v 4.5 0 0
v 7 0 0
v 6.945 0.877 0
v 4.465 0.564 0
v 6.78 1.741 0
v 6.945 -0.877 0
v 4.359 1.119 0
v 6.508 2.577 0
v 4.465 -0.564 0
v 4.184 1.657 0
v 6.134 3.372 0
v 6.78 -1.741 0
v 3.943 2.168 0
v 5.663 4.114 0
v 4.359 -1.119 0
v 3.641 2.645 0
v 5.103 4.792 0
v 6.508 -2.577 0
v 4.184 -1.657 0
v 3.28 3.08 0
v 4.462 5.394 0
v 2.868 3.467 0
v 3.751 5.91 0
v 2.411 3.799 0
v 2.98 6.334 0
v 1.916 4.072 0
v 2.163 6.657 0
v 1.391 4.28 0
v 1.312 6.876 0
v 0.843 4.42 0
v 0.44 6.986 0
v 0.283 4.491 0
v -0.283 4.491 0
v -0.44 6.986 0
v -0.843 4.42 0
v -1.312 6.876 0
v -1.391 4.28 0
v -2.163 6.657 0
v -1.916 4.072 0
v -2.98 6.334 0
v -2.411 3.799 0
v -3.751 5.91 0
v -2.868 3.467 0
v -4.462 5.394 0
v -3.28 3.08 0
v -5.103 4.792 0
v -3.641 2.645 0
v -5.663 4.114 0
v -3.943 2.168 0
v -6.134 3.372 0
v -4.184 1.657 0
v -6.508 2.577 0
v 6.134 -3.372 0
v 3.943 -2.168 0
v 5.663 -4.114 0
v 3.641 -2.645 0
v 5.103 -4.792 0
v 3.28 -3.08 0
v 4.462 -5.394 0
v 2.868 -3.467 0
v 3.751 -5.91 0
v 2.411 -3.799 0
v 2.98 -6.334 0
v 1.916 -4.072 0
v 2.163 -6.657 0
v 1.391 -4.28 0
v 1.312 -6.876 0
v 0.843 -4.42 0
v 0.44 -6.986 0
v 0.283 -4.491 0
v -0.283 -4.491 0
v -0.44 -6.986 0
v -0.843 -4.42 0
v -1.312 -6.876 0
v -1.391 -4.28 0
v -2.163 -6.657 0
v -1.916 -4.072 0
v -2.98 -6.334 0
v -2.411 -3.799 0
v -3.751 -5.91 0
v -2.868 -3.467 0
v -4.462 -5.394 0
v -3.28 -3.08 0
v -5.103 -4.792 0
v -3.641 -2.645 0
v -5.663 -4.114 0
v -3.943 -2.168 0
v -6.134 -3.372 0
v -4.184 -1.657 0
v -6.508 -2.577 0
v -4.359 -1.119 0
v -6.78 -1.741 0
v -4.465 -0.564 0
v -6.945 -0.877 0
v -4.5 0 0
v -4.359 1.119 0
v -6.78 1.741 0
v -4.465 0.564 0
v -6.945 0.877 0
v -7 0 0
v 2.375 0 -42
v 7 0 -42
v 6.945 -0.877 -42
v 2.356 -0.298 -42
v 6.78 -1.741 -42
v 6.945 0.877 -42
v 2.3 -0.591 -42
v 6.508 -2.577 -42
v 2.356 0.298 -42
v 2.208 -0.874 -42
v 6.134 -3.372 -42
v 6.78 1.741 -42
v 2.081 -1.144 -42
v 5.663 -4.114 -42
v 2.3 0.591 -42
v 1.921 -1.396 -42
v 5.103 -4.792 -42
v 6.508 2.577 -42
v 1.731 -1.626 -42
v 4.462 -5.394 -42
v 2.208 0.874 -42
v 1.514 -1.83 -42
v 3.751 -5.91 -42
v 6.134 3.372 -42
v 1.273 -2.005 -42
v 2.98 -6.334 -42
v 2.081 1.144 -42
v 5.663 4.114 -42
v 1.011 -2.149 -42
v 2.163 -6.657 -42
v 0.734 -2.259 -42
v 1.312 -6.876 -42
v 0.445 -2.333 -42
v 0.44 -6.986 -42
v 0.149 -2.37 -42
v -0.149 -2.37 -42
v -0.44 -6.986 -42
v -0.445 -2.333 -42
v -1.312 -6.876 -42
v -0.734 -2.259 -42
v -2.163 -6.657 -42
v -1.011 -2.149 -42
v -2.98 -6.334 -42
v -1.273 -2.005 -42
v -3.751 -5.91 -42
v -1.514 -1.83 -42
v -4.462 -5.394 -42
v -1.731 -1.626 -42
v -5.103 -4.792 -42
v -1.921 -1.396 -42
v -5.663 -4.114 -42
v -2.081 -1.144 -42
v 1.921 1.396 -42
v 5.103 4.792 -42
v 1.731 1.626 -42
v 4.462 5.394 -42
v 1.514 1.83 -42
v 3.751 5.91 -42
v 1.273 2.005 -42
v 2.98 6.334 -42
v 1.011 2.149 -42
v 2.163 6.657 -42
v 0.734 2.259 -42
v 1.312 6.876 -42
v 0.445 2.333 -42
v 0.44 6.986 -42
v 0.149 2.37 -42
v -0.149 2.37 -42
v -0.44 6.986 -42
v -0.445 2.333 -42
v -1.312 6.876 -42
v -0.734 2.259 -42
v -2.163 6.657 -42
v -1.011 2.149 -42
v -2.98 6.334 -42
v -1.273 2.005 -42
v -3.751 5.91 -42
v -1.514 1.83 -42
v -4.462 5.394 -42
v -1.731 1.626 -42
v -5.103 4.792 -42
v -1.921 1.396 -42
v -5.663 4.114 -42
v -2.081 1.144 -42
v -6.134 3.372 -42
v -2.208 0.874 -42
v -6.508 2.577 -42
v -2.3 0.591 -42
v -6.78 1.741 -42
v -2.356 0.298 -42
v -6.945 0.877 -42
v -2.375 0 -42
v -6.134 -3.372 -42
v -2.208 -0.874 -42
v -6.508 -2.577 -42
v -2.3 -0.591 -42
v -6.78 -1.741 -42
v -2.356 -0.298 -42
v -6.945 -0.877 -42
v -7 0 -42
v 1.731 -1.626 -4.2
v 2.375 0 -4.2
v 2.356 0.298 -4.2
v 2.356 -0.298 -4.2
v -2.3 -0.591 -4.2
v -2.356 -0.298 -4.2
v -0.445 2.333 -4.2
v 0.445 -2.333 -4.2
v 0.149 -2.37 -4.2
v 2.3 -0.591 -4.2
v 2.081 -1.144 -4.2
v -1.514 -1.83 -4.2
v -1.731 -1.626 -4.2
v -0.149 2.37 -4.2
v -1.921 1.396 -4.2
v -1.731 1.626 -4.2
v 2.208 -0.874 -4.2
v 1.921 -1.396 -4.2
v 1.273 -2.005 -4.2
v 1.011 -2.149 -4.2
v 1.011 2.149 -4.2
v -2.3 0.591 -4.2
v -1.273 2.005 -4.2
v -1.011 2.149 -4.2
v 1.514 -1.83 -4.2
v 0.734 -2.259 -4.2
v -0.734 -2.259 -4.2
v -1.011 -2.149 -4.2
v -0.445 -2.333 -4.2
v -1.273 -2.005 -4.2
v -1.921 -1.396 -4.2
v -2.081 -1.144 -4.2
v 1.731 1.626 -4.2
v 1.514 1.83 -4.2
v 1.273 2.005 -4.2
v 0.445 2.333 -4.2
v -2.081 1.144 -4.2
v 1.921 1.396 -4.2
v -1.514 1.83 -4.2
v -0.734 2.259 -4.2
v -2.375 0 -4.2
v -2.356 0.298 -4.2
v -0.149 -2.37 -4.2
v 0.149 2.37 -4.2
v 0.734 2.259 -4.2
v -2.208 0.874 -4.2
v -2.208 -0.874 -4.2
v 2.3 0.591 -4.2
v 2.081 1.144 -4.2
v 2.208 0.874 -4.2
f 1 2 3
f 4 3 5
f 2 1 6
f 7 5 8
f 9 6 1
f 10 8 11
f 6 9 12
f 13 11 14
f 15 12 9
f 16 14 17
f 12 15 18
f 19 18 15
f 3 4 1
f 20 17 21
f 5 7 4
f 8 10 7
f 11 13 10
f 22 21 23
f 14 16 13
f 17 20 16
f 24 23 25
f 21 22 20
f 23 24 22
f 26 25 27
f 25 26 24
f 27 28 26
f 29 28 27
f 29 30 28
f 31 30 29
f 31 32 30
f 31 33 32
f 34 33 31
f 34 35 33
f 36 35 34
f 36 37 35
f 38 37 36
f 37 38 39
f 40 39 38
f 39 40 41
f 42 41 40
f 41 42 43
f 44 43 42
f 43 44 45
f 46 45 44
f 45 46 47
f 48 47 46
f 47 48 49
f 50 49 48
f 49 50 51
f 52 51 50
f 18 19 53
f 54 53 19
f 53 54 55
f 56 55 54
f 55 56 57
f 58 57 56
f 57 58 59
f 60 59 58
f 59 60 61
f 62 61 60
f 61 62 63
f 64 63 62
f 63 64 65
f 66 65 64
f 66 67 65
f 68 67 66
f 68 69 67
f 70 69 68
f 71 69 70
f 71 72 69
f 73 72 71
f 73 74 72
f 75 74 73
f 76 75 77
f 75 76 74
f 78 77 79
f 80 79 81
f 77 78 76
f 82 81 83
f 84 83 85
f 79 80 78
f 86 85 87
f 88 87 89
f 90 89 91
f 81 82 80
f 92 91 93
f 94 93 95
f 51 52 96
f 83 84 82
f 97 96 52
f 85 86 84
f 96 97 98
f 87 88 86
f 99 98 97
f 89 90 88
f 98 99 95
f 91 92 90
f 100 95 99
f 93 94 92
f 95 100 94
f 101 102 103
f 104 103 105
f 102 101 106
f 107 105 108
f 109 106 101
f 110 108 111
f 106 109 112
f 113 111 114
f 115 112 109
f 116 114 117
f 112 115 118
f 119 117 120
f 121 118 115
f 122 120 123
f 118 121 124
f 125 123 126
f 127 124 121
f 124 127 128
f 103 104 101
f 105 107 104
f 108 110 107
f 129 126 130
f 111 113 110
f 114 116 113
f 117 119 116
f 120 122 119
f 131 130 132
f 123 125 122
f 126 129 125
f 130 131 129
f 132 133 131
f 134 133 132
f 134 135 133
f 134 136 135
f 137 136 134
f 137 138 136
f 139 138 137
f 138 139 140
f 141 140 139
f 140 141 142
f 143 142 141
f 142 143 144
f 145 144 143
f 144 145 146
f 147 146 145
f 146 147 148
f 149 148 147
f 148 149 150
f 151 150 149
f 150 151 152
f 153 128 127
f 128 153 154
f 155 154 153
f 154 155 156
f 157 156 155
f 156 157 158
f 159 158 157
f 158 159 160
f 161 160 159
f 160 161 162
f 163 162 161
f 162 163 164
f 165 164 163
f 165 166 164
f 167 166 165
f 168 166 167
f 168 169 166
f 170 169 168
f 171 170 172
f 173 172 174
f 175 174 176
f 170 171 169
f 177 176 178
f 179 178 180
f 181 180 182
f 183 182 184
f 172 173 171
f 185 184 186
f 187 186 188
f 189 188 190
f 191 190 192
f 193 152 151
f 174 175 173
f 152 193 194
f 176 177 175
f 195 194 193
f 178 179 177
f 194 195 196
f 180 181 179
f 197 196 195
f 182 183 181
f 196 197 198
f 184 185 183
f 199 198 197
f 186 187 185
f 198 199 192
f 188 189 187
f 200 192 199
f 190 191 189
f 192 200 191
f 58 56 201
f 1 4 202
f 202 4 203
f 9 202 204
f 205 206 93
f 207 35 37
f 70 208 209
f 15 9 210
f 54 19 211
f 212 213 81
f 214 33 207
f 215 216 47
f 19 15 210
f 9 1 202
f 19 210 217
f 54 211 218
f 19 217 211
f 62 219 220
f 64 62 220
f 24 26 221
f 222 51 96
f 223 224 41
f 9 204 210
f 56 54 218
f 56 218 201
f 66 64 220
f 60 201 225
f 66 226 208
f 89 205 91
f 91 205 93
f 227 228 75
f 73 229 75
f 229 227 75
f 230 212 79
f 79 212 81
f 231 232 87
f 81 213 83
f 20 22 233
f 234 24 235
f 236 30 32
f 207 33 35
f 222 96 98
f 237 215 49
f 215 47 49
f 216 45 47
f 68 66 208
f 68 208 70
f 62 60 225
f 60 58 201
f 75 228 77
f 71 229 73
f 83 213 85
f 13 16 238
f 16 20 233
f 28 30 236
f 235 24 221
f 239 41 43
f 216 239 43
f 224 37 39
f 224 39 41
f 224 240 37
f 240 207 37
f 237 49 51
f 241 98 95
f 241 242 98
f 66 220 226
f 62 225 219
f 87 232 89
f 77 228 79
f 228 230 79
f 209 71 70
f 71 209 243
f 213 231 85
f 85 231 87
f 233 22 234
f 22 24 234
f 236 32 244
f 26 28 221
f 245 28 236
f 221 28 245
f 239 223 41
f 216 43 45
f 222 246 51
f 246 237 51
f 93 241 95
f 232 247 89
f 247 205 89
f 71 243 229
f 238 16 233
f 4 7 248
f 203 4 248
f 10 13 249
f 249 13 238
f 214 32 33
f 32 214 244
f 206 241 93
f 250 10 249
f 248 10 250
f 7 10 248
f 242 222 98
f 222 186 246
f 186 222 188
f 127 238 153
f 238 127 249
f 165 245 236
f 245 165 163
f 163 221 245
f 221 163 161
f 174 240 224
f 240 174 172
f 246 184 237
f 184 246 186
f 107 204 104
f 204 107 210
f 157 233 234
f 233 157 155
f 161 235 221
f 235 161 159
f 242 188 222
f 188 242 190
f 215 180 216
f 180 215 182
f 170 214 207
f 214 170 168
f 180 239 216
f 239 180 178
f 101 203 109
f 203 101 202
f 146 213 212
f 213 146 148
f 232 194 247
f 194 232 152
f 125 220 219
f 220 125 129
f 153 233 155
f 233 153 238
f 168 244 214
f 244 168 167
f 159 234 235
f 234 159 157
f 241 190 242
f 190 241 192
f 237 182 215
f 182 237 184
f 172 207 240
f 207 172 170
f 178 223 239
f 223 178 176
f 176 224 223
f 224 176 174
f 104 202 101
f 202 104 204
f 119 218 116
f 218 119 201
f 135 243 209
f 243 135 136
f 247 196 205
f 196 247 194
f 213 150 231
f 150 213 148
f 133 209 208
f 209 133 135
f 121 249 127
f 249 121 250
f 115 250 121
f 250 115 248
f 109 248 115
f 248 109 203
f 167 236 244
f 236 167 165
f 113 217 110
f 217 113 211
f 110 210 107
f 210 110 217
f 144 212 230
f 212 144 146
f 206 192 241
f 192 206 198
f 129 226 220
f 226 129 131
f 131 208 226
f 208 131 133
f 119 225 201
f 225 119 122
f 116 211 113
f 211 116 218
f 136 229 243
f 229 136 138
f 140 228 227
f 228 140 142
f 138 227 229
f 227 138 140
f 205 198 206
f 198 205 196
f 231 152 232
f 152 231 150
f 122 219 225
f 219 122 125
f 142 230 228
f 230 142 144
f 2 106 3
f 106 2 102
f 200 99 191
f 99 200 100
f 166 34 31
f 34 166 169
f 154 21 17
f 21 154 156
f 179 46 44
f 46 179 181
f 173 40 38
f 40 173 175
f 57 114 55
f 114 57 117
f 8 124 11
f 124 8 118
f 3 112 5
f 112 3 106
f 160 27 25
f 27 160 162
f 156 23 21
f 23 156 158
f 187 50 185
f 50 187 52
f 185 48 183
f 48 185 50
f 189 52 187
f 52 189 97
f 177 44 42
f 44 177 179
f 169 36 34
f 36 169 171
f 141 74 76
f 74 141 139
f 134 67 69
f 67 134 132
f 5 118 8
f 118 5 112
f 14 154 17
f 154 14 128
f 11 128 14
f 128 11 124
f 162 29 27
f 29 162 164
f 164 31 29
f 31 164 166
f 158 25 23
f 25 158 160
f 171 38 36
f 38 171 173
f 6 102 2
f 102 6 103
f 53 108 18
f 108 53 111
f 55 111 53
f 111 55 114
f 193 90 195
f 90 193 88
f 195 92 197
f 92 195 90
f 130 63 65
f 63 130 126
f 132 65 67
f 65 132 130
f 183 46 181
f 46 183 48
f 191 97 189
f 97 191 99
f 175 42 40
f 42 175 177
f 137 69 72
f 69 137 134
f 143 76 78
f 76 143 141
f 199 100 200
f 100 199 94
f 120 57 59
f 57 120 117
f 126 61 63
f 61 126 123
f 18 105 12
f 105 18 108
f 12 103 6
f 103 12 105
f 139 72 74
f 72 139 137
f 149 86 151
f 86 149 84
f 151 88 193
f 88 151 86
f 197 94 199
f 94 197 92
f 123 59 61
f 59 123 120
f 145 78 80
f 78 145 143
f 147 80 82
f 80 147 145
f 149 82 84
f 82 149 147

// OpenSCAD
$fn = 50;


difference() {
	union() {
		translate(v = [0, 0, -42.0000000000]) {
			cylinder(h = 42, r = 7.0000000000);
		}
		cylinder(h = 0, r = 16.0000000000);
	}
	union() {
		translate(v = [0, 0, 0]) {
			rotate(a = [0, 0, 0]) {
				difference() {
					union() {
						#translate(v = [0, 0, -42.0000000000]) {
							cylinder(h = 42, r = 2.2500000000);
						}
						#translate(v = [0, 0, -4.2000000000]) {
							cylinder(h = 4.2000000000, r1 = 2.3750000000, r2 = 4.5000000000);
						}
						#translate(v = [0, 0, -42.0000000000]) {
							cylinder(h = 42, r = 2.3750000000);
						}
						#translate(v = [0, 0, -42.0000000000]) {
							cylinder(h = 42, r = 2.2500000000);
						}
					}
					union();
				}
			}
		}
	}
}
